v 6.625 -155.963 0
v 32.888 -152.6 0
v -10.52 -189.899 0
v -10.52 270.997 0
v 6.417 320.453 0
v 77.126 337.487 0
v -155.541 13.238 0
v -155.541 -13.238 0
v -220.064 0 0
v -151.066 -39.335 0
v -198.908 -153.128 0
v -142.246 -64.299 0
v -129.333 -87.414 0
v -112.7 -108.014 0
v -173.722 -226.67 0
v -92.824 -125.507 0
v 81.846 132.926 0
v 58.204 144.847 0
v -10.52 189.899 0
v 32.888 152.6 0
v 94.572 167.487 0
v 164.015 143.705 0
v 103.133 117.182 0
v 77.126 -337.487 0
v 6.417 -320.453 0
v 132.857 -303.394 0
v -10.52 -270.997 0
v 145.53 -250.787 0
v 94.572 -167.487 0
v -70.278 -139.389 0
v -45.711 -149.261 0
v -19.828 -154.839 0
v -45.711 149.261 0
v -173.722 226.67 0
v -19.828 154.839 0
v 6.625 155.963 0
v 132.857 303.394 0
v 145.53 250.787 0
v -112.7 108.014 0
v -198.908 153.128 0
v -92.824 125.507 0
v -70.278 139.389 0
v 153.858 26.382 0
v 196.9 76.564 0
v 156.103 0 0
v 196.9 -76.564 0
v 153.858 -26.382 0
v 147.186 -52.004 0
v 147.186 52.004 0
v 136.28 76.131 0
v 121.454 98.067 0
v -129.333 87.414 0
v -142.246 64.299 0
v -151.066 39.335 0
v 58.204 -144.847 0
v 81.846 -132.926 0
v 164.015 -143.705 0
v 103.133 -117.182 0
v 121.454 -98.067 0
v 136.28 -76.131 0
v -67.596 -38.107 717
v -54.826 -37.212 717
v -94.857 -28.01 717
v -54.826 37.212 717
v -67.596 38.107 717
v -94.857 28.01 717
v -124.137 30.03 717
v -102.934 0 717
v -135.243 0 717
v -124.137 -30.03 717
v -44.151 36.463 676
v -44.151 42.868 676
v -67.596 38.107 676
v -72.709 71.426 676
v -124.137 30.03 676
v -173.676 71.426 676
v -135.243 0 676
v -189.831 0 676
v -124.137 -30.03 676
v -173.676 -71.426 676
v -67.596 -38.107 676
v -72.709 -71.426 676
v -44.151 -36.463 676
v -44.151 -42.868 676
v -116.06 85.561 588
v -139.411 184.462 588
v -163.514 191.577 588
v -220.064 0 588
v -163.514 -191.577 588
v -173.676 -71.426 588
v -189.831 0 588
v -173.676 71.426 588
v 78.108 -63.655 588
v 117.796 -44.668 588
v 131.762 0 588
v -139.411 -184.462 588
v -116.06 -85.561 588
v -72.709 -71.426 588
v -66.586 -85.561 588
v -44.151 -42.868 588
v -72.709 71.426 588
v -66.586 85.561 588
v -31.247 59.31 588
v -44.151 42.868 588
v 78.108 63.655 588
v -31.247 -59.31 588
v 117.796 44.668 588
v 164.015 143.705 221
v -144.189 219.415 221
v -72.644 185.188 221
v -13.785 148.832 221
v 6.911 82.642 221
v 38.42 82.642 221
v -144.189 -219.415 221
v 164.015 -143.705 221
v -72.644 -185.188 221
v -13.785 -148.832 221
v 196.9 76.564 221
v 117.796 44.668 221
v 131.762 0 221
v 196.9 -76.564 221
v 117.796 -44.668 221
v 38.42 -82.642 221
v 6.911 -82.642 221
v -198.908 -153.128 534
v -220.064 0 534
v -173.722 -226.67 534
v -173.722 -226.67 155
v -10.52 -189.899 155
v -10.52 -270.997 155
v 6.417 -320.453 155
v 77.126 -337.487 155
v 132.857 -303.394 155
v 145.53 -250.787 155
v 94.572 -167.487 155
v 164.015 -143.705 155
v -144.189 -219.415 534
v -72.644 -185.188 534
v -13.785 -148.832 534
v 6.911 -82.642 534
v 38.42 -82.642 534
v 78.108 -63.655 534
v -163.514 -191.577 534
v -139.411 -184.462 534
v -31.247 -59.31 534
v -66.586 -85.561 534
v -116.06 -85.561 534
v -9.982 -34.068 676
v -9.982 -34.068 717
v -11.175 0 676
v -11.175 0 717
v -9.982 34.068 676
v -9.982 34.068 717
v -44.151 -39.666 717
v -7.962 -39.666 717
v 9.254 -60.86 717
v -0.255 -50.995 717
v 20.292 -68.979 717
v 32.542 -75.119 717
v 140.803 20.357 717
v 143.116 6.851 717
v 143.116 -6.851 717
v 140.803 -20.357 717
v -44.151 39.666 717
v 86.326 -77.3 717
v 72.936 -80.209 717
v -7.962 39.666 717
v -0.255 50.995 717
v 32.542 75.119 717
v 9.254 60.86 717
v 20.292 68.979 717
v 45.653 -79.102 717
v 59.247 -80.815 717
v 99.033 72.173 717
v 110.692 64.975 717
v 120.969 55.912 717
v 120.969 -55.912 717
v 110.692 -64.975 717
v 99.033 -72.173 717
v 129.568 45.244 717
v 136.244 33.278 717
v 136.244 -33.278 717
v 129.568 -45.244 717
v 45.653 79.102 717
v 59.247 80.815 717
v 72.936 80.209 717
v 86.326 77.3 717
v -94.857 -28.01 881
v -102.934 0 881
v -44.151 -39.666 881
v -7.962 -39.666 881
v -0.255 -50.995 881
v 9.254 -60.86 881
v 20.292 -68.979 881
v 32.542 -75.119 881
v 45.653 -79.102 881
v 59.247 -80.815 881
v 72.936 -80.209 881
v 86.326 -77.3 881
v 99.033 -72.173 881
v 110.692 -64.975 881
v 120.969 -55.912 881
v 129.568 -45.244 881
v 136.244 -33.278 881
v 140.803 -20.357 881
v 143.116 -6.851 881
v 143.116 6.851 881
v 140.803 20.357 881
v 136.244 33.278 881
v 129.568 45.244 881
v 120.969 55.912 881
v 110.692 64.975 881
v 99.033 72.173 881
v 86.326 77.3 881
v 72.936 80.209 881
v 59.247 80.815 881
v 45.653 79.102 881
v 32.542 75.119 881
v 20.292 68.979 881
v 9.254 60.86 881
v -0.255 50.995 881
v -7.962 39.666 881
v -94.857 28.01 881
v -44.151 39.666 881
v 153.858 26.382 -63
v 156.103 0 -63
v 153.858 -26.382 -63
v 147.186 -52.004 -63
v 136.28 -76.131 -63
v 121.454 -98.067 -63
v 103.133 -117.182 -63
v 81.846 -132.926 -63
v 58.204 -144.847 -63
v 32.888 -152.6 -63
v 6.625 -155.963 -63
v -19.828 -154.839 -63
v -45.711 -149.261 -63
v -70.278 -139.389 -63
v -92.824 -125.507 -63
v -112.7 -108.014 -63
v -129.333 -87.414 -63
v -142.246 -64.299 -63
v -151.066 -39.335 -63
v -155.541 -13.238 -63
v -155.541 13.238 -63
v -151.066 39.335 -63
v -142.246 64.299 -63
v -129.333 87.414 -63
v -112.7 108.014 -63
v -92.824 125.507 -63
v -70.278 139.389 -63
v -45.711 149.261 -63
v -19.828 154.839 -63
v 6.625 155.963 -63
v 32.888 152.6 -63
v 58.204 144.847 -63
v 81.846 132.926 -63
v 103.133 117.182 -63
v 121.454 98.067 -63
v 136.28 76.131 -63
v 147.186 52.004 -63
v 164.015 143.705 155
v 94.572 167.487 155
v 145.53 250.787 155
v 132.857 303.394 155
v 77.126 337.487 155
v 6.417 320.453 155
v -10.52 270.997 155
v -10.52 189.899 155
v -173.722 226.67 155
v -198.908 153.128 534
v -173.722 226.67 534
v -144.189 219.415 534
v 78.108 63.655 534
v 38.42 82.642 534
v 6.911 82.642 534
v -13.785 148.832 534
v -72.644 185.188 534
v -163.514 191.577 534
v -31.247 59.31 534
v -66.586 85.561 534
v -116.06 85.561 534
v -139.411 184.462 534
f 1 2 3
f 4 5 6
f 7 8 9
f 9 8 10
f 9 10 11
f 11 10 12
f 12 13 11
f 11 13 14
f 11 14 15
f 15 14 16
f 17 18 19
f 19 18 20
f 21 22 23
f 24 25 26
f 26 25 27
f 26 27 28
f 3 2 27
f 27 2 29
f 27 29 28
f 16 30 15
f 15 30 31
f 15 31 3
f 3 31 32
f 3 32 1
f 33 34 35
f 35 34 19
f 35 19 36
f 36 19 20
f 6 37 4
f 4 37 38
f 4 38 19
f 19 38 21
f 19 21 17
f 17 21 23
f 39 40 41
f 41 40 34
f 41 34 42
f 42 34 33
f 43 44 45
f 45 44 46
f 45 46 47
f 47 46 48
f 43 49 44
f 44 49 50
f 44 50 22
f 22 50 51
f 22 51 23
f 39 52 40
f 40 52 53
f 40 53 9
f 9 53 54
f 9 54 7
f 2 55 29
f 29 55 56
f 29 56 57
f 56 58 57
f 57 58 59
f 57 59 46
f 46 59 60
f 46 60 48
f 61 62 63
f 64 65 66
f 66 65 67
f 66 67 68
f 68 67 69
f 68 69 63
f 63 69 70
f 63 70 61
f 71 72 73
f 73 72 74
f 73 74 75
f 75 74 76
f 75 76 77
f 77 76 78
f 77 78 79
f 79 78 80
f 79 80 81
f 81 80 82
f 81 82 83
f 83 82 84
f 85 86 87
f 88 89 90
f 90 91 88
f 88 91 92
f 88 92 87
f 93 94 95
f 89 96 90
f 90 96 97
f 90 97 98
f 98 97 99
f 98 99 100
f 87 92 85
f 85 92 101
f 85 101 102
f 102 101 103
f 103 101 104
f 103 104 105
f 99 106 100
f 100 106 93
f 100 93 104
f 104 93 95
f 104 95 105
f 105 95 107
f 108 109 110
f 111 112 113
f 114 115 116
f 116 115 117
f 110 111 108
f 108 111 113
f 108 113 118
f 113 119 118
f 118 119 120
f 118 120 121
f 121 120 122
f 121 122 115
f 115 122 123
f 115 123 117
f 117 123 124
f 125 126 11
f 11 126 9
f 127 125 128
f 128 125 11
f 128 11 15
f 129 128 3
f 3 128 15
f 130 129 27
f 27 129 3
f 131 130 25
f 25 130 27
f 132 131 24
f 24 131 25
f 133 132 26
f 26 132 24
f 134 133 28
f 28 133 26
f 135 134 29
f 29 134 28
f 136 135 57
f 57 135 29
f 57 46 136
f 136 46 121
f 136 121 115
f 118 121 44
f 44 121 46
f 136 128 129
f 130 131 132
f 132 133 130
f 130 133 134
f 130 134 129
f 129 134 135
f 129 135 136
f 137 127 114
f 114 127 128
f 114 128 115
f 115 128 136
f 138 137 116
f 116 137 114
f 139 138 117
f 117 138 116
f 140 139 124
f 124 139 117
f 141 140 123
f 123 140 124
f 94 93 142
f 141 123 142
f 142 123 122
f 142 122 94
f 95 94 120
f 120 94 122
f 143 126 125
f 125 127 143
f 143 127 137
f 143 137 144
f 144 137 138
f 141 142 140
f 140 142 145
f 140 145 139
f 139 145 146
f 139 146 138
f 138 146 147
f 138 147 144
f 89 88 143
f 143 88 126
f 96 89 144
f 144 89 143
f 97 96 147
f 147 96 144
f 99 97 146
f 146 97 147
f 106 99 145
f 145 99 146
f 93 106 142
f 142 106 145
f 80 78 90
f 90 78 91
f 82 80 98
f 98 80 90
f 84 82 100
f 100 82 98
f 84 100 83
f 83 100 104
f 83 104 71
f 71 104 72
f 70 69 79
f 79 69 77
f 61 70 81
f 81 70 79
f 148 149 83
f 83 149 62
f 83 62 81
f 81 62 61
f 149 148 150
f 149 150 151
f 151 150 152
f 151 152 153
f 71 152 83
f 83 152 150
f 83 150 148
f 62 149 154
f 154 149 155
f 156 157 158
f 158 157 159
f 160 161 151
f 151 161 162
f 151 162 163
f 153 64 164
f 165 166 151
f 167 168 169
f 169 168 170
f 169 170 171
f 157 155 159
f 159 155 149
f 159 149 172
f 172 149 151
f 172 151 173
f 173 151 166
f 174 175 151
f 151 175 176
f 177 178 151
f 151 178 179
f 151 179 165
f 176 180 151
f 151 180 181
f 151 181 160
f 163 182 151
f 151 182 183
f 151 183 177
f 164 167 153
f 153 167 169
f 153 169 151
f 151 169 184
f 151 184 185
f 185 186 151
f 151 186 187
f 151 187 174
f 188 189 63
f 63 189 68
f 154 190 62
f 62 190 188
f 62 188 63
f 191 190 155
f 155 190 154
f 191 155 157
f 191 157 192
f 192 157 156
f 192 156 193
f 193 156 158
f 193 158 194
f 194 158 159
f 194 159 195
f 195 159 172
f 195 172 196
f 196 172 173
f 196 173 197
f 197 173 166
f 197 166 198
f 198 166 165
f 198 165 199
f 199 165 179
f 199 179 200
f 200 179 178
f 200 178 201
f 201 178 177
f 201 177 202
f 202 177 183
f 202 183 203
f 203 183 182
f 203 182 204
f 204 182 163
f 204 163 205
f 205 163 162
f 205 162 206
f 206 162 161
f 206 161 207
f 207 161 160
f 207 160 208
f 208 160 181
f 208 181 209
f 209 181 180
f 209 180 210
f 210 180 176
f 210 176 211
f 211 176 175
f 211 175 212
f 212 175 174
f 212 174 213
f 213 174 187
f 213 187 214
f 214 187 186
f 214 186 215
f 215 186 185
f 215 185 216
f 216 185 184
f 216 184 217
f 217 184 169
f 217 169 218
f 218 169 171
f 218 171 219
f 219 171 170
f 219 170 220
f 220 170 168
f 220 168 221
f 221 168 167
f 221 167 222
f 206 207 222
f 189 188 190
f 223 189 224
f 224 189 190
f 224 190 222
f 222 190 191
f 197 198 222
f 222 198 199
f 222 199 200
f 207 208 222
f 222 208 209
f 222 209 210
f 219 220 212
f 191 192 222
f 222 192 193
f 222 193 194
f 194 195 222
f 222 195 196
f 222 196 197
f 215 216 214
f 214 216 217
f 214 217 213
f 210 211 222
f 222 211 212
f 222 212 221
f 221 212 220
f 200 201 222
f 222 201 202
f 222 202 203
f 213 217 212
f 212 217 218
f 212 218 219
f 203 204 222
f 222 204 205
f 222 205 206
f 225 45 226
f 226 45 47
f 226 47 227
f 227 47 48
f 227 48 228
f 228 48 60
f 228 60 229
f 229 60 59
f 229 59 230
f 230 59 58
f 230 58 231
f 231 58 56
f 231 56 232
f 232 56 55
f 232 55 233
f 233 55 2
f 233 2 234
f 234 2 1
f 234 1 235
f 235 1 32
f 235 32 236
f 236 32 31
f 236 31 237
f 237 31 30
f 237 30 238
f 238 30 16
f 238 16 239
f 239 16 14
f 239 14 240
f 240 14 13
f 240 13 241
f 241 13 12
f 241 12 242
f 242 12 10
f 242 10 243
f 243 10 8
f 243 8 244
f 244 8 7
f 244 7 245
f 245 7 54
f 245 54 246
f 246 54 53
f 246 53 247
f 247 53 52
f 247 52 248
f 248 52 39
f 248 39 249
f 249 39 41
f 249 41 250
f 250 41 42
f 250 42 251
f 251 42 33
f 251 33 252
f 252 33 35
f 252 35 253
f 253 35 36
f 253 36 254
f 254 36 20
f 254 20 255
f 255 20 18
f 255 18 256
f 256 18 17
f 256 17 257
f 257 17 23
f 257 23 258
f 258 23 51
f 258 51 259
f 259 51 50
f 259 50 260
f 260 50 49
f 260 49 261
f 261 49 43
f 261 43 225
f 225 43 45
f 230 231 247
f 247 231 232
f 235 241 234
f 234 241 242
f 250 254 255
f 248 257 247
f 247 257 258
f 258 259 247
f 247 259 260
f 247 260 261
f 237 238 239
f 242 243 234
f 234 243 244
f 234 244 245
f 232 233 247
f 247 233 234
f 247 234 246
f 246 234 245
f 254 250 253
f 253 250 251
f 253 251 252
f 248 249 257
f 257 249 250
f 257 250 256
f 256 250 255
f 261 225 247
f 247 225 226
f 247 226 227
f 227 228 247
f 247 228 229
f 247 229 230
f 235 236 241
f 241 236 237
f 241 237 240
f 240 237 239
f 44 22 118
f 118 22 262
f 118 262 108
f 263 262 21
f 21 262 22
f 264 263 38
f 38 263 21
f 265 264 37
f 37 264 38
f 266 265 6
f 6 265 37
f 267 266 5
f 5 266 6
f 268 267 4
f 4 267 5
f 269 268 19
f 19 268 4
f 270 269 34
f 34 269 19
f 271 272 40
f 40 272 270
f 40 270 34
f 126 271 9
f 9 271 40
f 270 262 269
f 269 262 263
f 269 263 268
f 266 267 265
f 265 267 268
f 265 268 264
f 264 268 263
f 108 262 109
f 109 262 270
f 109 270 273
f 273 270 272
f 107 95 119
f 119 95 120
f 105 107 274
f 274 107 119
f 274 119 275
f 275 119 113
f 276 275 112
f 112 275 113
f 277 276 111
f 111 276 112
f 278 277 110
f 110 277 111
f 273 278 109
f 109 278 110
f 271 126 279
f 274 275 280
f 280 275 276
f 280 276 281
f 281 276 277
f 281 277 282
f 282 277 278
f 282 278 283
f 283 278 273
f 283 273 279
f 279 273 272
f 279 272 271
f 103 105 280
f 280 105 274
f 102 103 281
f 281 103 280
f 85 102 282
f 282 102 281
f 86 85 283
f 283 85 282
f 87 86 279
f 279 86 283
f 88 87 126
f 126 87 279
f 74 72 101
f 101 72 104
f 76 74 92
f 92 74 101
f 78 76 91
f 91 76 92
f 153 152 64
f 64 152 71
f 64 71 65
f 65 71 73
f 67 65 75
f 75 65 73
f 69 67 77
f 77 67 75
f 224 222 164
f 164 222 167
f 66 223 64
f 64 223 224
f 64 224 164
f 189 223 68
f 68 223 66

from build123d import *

# Parameters (mm, degrees)
BOSS_EXTRUDE1_DEPTH = 155
BOSS_EXTRUDE2_DEPTH = 66
BOSS_EXTRUDE3_DEPTH = 313
BOSS_EXTRUDE4_DEPTH = 54
BOSS_EXTRUDE5_DEPTH = 88
BOSS_EXTRUDE6_DEPTH = 41
BOSS_EXTRUDE7_DEPTH = 164
BOSS_EXTRUDE8_DEPTH = 63


with BuildPart() as part:
    # Sketch1 → Boss-Extrude1 (new body)
    with BuildSketch(Plane.XY):
        Polygon((-220.063797357, 0), (-198.907917785, -153.12825629), (-173.722346865, -226.670123376), (-10.519847306, -189.899189833), (-10.519847306, -270.996728194), (6.417174186, -320.452830951), (77.125939495, -337.486635422), (132.857093021, -303.394090716), (145.53009844, -250.787371679), (94.572304418, -167.486560125), (164.014799865, -143.704883603), (180.076897751, -110.911433751), (196.900067844, -76.564128145), (196.900067844, 0), align=None)
    boss_extrude1 = extrude(amount=BOSS_EXTRUDE1_DEPTH)

    # Sketch2 → Boss-Extrude2 (add)
    with BuildSketch(Plane.XY.offset(155)):
        Polygon((-220.063797357, 0), (-198.907917785, -153.12825629), (-173.722346865, -226.670123376), (164.014799865, -143.704883603), (196.900067844, -76.564128145), (196.900067844, 0), align=None)
    boss_extrude2 = extrude(amount=BOSS_EXTRUDE2_DEPTH)

    # Sketch3 → Boss-Extrude3 (add)
    with BuildSketch(Plane.XY.offset(221)):
        Polygon((-220.063797357, 0), (-198.907917785, -153.12825629), (-173.722346865, -226.670123376), (-144.188560723, -219.415139219), (-72.64388975, -185.187503489), (-13.784604036, -148.831636487), (0, -104.745103877), (6.910898911, -82.642360162), (38.419722404, -82.642360162), (117.796003981, -44.66800911), (131.76241917, 0), align=None)
    boss_extrude3 = extrude(amount=BOSS_EXTRUDE3_DEPTH)

    # Sketch4 → Boss-Extrude4 (add)
    with BuildSketch(Plane.XY.offset(534)):
        Polygon((-220.063797357, 0), (-163.514117876, -191.576655197), (-139.411479093, -184.462027915), (-116.05966541, -85.56138905), (-66.585874541, -85.56138905), (-31.247452492, -59.309989814), (78.107863193, -63.655184636), (117.796003981, -44.66800911), (131.76241917, 0), align=None)
    boss_extrude4 = extrude(amount=BOSS_EXTRUDE4_DEPTH)

    # Sketch5 → Boss-Extrude5 (add)
    with BuildSketch(Plane.XY.offset(588)):
        Polygon((-189.830764245, 0), (-173.676057022, -71.426020231), (-72.709136882, -71.426020231), (-44.150689094, -42.867572442), (-44.150689094, 0), align=None)
    boss_extrude5 = extrude(amount=BOSS_EXTRUDE5_DEPTH)

    # Sketch6 → Boss-Extrude6 (add)
    with BuildSketch(Plane.XY.offset(676)):
        with BuildLine():
            Line((-135.243392737, 0), (-124.137031521, -30.029582973))
            Line((-124.137031521, -30.029582973), (-67.595556243, -38.106936584))
            Line((-67.595556243, -38.106936584), (-9.982142183, -34.068259779))
            ThreePointArc((-9.982142183, -34.068259779), (-10.876517561, -17.044564178), (-11.174764407, 0))
            Line((-11.174764407, 0), (-135.243392737, 0))
        make_face()
    boss_extrude6 = extrude(amount=BOSS_EXTRUDE6_DEPTH)

    # Sketch7 → Boss-Extrude7 (add)
    with BuildSketch(Plane.XY.offset(717)):
        with BuildLine():
            Line((-102.933978292, 0), (-94.85662468, -28.01024457))
            Line((-94.85662468, -28.01024457), (-44.150689094, -39.665516705))
            Line((-44.150689094, -39.665516705), (-7.961701602, -39.665516705))
            ThreePointArc((-7.961701602, -39.665516705), (83.027852783, -78.239664369), (143.40681265, 0))
            Line((143.40681265, 0), (-7.961701602, 0))
            Line((-7.961701602, 0), (-102.933978292, 0))
        make_face()
    boss_extrude7 = extrude(amount=BOSS_EXTRUDE7_DEPTH)

    # Sketch8 → Boss-Extrude8 (add)
    with BuildSketch(Plane(origin=(0, 0, 0), x_dir=(-1, 0, 0), z_dir=(0, 0, -1))):
        with BuildLine():
            Line((-156.103280221, 0), (156.103280221, 0))
            ThreePointArc((156.103280221, 0), (0, -156.103280221), (-156.103280221, 0))
        make_face()
    boss_extrude8 = extrude(amount=BOSS_EXTRUDE8_DEPTH)

    # Mirror1: Boss-Extrude1, Boss-Extrude2, Boss-Extrude3, Boss-Extrude4, Boss-Extrude5, Boss-Extrude6, Boss-Extrude7, Boss-Extrude8 across plane
    add(boss_extrude1.mirror(Plane(origin=(196.900067844, 0, 155), x_dir=(0, 0, 1), z_dir=(0, -1, 0))))
    add(boss_extrude2.mirror(Plane(origin=(196.900067844, 0, 155), x_dir=(0, 0, 1), z_dir=(0, -1, 0))))
    add(boss_extrude3.mirror(Plane(origin=(196.900067844, 0, 155), x_dir=(0, 0, 1), z_dir=(0, -1, 0))))
    add(boss_extrude4.mirror(Plane(origin=(196.900067844, 0, 155), x_dir=(0, 0, 1), z_dir=(0, -1, 0))))
    add(boss_extrude5.mirror(Plane(origin=(196.900067844, 0, 155), x_dir=(0, 0, 1), z_dir=(0, -1, 0))))
    add(boss_extrude6.mirror(Plane(origin=(196.900067844, 0, 155), x_dir=(0, 0, 1), z_dir=(0, -1, 0))))
    add(boss_extrude7.mirror(Plane(origin=(196.900067844, 0, 155), x_dir=(0, 0, 1), z_dir=(0, -1, 0))))
    add(boss_extrude8.mirror(Plane(origin=(196.900067844, 0, 155), x_dir=(0, 0, 1), z_dir=(0, -1, 0))))


solid = part.part
